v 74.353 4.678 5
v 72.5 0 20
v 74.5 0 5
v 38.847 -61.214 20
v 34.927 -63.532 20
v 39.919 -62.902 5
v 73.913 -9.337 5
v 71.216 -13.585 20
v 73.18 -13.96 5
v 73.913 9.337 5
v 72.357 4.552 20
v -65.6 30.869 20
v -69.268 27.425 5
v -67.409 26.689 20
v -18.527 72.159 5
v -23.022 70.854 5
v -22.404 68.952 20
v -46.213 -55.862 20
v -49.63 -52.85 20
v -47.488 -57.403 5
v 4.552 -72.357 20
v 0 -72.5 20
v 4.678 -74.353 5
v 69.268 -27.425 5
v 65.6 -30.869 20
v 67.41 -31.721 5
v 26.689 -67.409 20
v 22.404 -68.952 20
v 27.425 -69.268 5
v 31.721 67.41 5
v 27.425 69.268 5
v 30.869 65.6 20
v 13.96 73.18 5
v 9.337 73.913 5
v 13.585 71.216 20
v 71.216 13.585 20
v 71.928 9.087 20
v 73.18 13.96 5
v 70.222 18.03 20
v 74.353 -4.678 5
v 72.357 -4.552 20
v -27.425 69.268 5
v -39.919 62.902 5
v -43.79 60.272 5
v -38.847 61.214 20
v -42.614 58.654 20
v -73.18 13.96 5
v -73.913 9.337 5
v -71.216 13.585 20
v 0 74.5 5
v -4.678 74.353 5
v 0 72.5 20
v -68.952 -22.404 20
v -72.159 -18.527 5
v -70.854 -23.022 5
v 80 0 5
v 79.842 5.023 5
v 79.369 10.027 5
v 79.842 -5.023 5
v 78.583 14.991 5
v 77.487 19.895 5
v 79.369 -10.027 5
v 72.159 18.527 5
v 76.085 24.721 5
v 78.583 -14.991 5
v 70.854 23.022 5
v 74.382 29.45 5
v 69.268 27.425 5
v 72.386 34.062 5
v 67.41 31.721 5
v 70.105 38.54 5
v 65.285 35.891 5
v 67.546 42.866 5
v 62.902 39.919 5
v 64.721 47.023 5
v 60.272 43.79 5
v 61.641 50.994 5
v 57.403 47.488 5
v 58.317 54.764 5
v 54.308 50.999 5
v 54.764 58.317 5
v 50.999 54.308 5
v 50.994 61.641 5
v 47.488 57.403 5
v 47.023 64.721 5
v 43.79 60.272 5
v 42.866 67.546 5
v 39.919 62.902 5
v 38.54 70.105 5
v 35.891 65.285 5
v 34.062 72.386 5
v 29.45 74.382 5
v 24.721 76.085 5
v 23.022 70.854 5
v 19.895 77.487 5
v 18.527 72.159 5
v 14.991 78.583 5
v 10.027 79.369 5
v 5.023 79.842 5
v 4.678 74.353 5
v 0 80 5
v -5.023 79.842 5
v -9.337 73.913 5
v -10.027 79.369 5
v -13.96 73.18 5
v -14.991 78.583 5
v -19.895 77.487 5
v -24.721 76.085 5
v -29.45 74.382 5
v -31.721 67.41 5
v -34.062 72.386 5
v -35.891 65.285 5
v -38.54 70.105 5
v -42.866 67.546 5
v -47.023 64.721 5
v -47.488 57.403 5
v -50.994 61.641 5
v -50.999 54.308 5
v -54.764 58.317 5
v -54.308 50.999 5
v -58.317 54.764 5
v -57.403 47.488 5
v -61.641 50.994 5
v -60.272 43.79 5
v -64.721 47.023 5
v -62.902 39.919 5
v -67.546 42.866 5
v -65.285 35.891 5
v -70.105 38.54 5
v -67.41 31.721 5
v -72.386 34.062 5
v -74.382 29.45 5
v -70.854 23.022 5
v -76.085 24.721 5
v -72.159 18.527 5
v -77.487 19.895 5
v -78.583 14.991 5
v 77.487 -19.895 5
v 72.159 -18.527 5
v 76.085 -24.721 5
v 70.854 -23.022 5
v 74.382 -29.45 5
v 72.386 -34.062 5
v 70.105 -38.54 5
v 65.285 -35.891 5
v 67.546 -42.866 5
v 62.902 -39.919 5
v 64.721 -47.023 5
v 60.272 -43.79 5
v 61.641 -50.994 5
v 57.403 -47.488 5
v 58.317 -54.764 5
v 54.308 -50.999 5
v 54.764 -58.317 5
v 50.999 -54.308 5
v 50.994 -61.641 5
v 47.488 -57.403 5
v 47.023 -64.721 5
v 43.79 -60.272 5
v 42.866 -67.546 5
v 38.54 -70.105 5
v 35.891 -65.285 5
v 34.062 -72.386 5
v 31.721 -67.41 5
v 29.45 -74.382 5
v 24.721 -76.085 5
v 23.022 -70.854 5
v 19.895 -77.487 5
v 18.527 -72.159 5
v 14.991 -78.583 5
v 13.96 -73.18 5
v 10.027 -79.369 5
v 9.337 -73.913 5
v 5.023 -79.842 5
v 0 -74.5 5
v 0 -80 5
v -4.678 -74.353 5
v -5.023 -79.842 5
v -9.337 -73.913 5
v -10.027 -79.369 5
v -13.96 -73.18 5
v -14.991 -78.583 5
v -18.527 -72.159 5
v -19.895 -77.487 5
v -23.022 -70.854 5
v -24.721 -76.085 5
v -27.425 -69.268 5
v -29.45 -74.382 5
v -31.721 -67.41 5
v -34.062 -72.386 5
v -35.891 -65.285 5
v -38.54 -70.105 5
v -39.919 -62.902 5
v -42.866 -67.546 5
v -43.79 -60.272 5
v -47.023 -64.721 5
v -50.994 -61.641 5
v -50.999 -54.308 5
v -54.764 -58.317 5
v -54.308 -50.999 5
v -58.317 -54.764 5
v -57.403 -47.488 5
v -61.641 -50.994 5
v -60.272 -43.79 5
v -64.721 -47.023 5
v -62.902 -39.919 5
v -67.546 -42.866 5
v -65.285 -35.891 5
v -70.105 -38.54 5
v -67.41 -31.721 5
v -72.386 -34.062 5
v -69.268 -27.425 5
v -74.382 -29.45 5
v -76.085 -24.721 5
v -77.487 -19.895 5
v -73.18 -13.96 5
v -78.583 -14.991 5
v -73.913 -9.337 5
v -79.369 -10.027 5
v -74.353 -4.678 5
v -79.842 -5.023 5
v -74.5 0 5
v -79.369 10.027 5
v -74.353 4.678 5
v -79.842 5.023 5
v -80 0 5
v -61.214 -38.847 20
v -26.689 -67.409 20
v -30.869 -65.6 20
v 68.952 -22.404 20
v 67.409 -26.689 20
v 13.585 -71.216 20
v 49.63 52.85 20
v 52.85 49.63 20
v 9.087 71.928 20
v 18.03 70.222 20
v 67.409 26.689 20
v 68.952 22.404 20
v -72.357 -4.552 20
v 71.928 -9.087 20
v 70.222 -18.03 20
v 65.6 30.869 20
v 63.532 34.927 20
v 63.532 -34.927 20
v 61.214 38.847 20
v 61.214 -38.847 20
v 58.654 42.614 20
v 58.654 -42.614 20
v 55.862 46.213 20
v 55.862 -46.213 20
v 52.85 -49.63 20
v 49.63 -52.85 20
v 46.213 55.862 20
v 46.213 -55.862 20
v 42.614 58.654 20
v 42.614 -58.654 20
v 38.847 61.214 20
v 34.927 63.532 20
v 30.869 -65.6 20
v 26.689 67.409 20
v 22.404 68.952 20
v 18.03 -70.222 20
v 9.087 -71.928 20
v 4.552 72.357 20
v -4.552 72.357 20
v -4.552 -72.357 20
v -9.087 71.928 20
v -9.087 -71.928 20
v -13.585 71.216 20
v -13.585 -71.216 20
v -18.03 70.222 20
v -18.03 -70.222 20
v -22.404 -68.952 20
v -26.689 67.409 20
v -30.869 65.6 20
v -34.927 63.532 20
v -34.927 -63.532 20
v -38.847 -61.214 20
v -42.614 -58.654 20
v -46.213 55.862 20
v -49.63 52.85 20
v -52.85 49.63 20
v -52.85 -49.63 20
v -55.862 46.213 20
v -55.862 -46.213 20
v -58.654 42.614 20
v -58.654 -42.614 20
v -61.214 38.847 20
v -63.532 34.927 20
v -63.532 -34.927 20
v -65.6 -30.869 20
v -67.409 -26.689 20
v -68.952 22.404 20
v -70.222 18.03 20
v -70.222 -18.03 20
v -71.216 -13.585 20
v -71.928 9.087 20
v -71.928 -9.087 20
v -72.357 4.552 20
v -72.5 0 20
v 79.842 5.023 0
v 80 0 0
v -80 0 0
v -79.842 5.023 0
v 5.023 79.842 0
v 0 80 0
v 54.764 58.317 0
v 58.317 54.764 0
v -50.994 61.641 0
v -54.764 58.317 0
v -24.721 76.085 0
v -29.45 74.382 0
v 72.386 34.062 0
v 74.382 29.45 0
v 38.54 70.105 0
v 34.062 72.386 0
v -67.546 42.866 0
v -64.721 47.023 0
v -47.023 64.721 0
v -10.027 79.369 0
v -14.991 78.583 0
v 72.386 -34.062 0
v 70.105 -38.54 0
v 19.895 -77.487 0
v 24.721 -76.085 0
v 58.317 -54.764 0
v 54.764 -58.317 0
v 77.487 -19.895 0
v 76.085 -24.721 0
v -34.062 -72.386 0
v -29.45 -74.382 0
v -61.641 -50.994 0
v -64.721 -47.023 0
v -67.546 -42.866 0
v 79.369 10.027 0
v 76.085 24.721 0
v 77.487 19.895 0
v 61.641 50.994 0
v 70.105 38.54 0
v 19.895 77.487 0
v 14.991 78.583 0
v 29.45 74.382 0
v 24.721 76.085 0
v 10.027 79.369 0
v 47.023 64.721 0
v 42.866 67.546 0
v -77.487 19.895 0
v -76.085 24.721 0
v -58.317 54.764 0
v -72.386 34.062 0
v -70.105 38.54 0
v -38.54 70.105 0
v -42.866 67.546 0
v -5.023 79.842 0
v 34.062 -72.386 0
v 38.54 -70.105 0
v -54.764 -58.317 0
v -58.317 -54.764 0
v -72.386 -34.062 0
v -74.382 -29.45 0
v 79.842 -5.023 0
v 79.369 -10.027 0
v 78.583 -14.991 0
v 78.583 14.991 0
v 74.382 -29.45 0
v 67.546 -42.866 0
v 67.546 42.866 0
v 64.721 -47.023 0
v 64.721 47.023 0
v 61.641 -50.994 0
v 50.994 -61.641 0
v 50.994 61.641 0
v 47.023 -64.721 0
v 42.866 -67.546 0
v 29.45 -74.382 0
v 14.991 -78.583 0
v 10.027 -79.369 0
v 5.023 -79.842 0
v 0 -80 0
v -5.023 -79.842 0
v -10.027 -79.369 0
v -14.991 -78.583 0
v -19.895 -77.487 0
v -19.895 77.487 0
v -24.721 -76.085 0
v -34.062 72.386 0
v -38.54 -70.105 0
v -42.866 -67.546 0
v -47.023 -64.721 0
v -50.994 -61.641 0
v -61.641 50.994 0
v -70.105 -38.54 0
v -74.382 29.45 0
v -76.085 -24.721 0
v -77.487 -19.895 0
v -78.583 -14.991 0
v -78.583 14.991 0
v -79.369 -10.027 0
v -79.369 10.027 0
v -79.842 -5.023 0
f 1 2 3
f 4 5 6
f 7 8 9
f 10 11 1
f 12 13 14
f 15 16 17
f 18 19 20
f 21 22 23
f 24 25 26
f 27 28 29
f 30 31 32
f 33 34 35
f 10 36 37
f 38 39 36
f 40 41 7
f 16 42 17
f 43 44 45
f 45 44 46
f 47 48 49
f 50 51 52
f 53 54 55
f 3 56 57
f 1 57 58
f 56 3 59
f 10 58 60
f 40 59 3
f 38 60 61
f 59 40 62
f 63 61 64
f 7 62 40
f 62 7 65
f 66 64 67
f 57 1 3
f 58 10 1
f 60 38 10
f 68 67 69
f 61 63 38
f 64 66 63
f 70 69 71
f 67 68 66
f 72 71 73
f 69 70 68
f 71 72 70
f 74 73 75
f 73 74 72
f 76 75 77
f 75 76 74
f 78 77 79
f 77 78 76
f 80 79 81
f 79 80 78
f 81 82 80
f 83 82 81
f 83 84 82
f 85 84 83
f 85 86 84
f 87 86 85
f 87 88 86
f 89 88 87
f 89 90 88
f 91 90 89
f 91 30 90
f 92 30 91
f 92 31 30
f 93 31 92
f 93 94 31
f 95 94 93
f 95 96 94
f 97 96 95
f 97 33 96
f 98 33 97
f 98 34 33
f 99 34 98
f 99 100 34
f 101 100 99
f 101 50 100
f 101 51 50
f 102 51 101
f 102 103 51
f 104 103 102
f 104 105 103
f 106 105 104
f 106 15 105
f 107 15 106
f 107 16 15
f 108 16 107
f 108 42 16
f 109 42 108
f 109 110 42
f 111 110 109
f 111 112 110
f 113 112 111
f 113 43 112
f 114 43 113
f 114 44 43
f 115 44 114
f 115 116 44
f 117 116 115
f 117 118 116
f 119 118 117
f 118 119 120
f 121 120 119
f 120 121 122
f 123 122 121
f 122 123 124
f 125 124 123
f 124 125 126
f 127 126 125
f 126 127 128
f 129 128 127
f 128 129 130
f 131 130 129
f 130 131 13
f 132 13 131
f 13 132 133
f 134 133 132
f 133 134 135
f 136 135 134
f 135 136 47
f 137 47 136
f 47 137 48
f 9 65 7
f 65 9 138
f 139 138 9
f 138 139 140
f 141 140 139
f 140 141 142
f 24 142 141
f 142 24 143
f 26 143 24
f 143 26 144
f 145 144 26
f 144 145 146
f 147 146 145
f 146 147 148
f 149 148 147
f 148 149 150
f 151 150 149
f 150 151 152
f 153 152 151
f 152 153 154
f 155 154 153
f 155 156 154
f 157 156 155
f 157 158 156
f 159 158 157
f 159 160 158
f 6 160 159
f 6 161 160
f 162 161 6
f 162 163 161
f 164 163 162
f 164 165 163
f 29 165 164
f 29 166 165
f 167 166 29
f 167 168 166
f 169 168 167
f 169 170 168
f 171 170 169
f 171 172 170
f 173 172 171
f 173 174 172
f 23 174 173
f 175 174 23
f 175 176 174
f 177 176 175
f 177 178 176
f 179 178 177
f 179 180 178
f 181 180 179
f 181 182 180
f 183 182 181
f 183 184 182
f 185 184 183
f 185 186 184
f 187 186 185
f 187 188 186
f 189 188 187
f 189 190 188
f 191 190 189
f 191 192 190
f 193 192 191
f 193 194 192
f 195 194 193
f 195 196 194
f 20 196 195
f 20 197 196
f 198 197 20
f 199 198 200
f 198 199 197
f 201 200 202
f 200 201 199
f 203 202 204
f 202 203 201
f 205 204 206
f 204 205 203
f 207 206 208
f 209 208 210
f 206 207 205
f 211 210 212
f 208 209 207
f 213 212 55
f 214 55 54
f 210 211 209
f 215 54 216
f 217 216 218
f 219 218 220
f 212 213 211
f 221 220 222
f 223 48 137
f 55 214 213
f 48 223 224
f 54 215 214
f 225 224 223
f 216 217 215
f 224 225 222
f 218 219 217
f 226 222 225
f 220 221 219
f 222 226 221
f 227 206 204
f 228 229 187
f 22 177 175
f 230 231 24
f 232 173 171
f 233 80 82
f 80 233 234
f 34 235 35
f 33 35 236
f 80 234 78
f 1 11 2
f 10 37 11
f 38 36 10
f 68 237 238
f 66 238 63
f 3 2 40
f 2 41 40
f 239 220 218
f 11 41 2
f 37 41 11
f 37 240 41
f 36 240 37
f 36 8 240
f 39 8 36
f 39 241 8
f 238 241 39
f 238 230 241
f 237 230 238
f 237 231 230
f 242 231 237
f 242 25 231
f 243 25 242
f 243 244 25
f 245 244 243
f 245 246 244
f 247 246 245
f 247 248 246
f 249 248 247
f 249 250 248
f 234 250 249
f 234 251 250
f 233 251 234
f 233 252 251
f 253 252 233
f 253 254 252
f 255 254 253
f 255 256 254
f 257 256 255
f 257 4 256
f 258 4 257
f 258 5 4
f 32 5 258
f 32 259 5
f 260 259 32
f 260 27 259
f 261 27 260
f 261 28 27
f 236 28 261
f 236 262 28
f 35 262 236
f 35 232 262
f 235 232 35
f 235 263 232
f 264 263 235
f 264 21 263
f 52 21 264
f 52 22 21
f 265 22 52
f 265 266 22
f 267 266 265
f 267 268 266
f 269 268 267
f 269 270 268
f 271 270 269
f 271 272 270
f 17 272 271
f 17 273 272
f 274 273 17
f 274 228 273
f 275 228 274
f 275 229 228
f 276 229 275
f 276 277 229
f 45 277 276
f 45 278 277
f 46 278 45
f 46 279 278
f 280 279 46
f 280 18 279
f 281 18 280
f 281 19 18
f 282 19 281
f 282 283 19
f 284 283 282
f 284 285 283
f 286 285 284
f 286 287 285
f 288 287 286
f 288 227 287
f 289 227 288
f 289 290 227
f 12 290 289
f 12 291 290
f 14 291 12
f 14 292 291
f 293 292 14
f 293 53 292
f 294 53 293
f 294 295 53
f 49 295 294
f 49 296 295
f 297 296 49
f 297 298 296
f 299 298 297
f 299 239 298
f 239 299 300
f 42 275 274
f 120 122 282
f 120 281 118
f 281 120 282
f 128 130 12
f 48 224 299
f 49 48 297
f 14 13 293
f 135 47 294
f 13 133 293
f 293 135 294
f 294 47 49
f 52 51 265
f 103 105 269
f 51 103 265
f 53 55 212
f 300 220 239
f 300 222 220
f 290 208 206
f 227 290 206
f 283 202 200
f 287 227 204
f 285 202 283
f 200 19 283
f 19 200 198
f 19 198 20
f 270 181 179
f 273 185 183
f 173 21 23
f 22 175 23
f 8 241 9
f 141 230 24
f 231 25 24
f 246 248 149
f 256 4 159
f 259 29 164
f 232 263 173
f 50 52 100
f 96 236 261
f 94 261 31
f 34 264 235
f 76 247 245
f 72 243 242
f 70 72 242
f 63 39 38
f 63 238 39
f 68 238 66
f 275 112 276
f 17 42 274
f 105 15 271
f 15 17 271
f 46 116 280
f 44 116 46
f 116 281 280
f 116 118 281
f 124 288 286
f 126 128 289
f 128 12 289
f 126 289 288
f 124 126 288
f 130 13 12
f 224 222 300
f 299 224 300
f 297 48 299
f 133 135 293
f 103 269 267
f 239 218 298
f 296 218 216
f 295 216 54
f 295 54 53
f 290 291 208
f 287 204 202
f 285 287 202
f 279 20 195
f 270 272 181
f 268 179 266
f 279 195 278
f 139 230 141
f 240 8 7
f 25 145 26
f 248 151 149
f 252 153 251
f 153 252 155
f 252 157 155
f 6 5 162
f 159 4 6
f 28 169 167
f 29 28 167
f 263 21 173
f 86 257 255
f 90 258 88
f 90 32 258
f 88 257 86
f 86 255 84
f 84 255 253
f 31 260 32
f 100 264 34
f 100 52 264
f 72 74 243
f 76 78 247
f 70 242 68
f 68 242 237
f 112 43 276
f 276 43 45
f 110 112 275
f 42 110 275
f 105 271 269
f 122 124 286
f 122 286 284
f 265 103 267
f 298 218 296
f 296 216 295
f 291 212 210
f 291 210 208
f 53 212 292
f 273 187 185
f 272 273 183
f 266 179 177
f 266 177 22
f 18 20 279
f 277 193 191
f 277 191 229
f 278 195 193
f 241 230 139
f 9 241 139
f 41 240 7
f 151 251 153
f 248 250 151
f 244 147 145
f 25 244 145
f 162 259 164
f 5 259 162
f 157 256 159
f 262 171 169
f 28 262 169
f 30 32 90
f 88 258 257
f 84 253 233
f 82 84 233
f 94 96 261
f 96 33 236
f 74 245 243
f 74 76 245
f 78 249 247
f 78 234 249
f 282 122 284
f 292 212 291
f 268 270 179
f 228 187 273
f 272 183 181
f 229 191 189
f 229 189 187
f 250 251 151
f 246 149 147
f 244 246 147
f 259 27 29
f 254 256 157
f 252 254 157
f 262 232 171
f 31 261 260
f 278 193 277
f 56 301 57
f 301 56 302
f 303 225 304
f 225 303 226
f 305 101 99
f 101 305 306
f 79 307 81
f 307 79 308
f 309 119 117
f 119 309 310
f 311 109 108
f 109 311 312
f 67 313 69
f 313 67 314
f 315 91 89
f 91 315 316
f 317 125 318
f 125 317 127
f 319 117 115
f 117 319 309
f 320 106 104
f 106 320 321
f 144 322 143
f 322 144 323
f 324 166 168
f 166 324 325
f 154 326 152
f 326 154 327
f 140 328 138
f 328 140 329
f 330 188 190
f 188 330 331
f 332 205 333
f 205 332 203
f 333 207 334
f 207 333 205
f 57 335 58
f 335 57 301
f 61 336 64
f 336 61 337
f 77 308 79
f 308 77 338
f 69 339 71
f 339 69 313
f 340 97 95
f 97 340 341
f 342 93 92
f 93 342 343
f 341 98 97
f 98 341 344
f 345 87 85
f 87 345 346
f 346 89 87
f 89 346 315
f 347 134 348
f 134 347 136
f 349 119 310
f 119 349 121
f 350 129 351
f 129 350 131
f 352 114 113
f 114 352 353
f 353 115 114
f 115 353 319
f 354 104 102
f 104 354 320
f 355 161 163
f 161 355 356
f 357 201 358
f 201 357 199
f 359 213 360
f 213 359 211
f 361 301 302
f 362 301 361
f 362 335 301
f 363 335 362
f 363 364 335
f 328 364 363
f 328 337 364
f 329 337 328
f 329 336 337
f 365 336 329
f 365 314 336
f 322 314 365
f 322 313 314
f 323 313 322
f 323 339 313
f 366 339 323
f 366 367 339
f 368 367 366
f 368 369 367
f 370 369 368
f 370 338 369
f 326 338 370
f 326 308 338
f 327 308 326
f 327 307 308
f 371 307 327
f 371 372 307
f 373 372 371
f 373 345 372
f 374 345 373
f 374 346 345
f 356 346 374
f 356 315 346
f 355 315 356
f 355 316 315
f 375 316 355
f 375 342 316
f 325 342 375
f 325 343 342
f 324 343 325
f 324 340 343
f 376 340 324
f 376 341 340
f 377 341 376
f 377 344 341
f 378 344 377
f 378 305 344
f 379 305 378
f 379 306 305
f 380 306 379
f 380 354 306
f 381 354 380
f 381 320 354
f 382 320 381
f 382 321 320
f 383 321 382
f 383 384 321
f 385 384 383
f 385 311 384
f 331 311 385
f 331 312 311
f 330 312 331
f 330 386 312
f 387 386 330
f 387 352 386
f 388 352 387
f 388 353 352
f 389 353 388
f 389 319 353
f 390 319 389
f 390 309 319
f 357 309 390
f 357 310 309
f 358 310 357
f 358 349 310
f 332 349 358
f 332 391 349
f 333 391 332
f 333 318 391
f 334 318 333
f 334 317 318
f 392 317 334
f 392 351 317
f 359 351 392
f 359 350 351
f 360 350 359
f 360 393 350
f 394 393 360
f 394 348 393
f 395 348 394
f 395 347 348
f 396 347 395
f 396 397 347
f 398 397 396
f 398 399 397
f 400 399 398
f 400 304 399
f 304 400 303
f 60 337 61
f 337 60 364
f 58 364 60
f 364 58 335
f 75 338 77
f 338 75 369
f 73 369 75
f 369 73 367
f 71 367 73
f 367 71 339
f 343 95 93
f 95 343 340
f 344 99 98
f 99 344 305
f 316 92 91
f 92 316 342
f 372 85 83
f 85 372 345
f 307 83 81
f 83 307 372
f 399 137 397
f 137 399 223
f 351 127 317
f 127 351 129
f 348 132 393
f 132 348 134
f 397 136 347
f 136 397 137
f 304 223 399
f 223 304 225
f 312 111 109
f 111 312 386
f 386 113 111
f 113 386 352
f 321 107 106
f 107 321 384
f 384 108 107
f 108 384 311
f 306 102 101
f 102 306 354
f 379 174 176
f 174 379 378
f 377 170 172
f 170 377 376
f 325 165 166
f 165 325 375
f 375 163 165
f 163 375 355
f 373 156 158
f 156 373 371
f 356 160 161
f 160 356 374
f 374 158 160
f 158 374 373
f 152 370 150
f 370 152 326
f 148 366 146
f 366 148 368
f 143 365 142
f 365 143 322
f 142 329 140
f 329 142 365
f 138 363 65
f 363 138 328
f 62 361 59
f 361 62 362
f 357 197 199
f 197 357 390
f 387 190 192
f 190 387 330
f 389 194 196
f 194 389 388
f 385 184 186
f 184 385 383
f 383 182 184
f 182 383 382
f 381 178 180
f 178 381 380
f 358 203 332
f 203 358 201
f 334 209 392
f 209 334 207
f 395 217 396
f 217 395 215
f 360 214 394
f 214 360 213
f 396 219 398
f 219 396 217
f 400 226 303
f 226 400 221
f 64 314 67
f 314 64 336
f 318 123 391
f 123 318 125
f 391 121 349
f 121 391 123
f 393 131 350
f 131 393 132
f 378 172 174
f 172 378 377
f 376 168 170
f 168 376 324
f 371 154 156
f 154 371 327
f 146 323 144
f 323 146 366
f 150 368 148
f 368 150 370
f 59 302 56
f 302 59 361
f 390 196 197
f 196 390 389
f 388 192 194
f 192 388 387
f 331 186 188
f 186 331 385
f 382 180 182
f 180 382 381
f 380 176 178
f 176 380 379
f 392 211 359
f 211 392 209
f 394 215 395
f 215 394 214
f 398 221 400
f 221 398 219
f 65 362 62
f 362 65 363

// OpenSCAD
$fn=100;
translate([0,0,5])cylinder(15,149/2,145/2);
cylinder(5,160/2,160/2);
